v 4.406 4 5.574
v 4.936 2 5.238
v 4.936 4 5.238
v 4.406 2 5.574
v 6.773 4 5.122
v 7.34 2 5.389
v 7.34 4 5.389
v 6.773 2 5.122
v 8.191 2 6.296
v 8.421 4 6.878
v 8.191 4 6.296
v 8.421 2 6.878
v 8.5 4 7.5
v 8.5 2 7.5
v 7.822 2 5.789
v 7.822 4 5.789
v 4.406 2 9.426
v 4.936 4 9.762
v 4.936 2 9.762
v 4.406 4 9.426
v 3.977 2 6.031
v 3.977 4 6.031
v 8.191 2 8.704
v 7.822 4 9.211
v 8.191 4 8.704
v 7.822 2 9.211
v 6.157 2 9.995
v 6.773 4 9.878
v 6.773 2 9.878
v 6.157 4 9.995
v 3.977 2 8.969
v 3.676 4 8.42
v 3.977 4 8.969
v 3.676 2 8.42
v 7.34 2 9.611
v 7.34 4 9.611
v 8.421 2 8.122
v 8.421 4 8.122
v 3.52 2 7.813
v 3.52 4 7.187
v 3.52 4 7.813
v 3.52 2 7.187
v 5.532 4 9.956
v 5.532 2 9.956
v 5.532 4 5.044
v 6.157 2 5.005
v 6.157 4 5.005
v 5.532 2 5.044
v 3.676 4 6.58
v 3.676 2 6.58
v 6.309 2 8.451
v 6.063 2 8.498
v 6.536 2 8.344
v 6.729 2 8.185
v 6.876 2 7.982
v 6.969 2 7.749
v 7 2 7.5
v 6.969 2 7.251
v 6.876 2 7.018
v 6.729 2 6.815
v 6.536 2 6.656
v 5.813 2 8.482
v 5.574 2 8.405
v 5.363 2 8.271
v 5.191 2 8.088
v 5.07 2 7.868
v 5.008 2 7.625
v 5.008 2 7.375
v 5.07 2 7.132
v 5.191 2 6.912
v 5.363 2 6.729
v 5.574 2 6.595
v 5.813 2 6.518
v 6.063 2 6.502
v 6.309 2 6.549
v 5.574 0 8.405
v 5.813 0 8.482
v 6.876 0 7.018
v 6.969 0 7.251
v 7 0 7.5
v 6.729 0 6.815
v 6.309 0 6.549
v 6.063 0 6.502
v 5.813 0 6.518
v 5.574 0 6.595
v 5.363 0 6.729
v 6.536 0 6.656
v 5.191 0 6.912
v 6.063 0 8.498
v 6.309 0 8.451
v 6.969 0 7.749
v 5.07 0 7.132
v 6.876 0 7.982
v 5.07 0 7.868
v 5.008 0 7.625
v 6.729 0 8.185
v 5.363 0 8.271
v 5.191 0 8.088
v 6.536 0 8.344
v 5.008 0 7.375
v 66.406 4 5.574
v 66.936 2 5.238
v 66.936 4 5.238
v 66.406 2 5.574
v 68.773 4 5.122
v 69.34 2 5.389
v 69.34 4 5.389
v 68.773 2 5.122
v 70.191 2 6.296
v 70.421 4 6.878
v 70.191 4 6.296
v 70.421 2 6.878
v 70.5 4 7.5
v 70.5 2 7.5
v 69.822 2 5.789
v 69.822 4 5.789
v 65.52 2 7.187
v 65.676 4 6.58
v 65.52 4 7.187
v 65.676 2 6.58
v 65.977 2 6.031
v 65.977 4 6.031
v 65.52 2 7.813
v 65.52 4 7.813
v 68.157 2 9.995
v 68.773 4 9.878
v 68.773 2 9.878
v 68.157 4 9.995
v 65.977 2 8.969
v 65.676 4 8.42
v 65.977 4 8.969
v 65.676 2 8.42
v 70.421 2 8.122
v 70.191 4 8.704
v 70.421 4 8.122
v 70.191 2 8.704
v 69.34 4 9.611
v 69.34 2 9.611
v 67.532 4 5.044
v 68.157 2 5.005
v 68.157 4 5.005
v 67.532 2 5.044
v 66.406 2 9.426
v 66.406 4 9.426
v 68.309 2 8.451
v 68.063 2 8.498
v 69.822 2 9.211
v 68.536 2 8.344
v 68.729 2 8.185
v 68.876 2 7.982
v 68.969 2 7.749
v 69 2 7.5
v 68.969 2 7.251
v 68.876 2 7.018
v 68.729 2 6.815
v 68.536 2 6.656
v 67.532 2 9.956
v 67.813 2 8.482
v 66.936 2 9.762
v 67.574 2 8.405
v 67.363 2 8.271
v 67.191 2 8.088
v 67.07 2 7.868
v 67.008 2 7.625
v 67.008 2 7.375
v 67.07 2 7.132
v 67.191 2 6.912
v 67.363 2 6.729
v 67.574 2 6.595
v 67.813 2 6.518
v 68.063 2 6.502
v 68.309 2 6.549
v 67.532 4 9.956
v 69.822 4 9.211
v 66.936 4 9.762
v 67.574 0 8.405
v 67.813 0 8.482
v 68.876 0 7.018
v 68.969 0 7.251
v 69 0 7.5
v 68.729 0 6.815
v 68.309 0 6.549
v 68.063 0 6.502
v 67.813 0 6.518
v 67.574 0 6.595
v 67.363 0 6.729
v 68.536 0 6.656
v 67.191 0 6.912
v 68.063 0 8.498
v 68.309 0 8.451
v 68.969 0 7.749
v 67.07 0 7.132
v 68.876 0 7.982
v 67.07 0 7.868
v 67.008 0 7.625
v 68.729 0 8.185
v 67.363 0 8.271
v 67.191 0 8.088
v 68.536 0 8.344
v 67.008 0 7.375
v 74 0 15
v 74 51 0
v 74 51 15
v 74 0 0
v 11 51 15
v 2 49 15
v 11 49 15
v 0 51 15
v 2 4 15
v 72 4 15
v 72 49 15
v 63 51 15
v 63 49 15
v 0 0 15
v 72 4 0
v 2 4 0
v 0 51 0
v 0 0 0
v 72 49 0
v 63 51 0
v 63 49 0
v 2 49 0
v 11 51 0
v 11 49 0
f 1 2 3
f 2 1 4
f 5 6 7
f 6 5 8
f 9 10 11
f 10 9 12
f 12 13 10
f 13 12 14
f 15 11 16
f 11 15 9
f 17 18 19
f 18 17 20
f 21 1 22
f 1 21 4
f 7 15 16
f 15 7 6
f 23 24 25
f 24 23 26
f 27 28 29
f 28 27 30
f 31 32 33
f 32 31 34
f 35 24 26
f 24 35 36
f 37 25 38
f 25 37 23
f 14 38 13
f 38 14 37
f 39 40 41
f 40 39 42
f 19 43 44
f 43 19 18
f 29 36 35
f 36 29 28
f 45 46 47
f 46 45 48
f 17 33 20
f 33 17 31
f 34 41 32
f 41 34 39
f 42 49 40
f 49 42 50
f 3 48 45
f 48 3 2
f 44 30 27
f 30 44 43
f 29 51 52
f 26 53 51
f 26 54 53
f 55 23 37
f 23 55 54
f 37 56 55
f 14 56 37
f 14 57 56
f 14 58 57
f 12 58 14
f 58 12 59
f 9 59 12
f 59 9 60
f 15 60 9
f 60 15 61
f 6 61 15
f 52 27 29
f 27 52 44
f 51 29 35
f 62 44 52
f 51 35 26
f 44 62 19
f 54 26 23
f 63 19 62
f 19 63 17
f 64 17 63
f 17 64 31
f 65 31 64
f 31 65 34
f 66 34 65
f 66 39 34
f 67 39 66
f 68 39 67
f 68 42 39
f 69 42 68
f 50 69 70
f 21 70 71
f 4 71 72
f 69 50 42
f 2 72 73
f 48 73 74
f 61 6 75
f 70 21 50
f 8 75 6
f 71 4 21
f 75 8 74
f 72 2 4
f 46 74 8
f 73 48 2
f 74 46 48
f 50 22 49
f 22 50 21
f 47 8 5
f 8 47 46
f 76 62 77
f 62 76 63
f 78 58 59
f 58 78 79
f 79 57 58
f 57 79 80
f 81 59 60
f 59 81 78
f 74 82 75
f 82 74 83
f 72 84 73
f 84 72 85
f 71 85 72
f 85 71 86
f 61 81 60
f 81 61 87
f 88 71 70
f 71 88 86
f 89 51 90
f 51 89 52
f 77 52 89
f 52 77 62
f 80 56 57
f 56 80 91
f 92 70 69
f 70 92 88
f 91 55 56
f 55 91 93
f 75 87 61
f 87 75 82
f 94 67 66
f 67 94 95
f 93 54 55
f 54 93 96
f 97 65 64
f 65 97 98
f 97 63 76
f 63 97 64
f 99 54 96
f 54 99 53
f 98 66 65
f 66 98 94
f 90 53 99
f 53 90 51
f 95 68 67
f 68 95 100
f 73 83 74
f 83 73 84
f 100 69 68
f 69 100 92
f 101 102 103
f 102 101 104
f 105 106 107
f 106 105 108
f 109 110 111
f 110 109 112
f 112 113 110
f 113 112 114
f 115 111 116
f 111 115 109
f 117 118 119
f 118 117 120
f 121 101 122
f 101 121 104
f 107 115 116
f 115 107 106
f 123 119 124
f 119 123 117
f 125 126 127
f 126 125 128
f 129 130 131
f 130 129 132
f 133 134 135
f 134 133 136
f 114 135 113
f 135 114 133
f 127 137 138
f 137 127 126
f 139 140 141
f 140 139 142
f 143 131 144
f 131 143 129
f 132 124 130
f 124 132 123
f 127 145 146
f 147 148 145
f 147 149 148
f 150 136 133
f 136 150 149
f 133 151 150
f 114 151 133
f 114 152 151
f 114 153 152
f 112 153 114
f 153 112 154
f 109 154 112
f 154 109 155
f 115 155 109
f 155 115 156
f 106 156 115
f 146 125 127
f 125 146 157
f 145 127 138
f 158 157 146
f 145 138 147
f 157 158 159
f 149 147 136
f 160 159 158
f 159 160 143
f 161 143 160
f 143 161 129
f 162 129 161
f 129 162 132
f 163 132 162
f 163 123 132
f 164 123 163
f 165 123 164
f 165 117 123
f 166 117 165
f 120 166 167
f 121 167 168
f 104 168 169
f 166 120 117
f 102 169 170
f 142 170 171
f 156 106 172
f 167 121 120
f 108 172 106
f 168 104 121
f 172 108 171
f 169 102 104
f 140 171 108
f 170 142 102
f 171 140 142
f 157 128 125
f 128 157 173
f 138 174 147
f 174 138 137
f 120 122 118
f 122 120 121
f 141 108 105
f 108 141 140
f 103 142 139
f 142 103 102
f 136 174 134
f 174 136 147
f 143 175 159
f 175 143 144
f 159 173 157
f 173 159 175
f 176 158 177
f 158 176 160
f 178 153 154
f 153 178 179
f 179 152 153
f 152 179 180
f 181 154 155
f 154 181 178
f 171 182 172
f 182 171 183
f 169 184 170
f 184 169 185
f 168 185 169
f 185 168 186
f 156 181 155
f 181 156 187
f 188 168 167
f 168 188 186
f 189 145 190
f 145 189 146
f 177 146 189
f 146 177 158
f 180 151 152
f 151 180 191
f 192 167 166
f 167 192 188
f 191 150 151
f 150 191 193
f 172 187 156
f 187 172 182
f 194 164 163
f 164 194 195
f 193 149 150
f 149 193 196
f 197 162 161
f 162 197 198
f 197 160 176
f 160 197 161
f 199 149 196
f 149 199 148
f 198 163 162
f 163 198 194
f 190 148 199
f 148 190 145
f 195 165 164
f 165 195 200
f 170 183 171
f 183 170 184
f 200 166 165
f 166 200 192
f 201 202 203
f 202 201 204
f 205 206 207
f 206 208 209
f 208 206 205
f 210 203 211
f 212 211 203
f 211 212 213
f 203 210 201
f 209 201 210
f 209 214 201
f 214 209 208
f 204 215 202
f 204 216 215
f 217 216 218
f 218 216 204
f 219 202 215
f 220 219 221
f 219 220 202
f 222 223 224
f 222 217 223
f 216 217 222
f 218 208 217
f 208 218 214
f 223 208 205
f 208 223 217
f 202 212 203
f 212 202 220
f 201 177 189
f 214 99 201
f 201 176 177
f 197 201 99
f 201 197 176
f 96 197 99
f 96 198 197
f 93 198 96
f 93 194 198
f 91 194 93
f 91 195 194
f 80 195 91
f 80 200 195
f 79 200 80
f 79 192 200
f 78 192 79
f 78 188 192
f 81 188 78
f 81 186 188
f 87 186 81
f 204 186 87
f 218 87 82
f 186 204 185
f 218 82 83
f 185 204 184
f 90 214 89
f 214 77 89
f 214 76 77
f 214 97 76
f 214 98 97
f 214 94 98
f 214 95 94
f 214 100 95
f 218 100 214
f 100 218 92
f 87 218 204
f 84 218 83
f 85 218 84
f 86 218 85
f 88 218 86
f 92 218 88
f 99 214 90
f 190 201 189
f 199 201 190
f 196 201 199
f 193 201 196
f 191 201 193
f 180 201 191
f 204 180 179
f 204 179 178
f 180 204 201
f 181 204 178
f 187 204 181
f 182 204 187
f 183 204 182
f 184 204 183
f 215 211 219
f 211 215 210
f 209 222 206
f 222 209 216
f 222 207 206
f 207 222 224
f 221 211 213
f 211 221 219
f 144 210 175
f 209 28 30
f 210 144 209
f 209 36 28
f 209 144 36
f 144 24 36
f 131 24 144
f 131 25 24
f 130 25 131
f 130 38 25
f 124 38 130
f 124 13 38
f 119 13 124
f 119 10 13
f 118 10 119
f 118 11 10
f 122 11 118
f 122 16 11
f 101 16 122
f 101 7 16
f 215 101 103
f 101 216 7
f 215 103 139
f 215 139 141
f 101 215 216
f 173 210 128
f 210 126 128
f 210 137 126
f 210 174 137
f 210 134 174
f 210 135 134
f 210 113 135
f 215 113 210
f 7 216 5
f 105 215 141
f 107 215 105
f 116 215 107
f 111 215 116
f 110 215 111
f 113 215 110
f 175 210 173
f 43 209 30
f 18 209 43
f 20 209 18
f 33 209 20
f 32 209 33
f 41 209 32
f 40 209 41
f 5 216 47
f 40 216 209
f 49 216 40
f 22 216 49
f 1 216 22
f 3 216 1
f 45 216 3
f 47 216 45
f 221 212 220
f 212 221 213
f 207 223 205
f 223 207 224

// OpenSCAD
width=70;
heigth=45;
length=15;
clamp=9;
thickness=2;

difference() {
    cube([width + 2 * thickness, heigth + 2 * thickness + 2, length]);

    // inner cutout
    translate([thickness, thickness + 2, -1])
        cube([width, heigth, 3+length]);

    // clamp cutout
    translate([thickness + clamp, 2 * thickness, -1])
        cube([width - 2 * clamp, 2 * heigth, 3+length]);

    screw(thickness + 4);
    screw(thickness + width - 4);
}

module screw(x_pos) {
    // left screw head
    translate([x_pos, 2, length / 2])
        rotate([-90, 0, 0])
        cylinder(20, d=5, $fn=25);

    // left screw hole
    translate([x_pos, -2, length / 2])
        rotate([-90, 0, 0])
        cylinder(20, d=2, $fn=25);
}
